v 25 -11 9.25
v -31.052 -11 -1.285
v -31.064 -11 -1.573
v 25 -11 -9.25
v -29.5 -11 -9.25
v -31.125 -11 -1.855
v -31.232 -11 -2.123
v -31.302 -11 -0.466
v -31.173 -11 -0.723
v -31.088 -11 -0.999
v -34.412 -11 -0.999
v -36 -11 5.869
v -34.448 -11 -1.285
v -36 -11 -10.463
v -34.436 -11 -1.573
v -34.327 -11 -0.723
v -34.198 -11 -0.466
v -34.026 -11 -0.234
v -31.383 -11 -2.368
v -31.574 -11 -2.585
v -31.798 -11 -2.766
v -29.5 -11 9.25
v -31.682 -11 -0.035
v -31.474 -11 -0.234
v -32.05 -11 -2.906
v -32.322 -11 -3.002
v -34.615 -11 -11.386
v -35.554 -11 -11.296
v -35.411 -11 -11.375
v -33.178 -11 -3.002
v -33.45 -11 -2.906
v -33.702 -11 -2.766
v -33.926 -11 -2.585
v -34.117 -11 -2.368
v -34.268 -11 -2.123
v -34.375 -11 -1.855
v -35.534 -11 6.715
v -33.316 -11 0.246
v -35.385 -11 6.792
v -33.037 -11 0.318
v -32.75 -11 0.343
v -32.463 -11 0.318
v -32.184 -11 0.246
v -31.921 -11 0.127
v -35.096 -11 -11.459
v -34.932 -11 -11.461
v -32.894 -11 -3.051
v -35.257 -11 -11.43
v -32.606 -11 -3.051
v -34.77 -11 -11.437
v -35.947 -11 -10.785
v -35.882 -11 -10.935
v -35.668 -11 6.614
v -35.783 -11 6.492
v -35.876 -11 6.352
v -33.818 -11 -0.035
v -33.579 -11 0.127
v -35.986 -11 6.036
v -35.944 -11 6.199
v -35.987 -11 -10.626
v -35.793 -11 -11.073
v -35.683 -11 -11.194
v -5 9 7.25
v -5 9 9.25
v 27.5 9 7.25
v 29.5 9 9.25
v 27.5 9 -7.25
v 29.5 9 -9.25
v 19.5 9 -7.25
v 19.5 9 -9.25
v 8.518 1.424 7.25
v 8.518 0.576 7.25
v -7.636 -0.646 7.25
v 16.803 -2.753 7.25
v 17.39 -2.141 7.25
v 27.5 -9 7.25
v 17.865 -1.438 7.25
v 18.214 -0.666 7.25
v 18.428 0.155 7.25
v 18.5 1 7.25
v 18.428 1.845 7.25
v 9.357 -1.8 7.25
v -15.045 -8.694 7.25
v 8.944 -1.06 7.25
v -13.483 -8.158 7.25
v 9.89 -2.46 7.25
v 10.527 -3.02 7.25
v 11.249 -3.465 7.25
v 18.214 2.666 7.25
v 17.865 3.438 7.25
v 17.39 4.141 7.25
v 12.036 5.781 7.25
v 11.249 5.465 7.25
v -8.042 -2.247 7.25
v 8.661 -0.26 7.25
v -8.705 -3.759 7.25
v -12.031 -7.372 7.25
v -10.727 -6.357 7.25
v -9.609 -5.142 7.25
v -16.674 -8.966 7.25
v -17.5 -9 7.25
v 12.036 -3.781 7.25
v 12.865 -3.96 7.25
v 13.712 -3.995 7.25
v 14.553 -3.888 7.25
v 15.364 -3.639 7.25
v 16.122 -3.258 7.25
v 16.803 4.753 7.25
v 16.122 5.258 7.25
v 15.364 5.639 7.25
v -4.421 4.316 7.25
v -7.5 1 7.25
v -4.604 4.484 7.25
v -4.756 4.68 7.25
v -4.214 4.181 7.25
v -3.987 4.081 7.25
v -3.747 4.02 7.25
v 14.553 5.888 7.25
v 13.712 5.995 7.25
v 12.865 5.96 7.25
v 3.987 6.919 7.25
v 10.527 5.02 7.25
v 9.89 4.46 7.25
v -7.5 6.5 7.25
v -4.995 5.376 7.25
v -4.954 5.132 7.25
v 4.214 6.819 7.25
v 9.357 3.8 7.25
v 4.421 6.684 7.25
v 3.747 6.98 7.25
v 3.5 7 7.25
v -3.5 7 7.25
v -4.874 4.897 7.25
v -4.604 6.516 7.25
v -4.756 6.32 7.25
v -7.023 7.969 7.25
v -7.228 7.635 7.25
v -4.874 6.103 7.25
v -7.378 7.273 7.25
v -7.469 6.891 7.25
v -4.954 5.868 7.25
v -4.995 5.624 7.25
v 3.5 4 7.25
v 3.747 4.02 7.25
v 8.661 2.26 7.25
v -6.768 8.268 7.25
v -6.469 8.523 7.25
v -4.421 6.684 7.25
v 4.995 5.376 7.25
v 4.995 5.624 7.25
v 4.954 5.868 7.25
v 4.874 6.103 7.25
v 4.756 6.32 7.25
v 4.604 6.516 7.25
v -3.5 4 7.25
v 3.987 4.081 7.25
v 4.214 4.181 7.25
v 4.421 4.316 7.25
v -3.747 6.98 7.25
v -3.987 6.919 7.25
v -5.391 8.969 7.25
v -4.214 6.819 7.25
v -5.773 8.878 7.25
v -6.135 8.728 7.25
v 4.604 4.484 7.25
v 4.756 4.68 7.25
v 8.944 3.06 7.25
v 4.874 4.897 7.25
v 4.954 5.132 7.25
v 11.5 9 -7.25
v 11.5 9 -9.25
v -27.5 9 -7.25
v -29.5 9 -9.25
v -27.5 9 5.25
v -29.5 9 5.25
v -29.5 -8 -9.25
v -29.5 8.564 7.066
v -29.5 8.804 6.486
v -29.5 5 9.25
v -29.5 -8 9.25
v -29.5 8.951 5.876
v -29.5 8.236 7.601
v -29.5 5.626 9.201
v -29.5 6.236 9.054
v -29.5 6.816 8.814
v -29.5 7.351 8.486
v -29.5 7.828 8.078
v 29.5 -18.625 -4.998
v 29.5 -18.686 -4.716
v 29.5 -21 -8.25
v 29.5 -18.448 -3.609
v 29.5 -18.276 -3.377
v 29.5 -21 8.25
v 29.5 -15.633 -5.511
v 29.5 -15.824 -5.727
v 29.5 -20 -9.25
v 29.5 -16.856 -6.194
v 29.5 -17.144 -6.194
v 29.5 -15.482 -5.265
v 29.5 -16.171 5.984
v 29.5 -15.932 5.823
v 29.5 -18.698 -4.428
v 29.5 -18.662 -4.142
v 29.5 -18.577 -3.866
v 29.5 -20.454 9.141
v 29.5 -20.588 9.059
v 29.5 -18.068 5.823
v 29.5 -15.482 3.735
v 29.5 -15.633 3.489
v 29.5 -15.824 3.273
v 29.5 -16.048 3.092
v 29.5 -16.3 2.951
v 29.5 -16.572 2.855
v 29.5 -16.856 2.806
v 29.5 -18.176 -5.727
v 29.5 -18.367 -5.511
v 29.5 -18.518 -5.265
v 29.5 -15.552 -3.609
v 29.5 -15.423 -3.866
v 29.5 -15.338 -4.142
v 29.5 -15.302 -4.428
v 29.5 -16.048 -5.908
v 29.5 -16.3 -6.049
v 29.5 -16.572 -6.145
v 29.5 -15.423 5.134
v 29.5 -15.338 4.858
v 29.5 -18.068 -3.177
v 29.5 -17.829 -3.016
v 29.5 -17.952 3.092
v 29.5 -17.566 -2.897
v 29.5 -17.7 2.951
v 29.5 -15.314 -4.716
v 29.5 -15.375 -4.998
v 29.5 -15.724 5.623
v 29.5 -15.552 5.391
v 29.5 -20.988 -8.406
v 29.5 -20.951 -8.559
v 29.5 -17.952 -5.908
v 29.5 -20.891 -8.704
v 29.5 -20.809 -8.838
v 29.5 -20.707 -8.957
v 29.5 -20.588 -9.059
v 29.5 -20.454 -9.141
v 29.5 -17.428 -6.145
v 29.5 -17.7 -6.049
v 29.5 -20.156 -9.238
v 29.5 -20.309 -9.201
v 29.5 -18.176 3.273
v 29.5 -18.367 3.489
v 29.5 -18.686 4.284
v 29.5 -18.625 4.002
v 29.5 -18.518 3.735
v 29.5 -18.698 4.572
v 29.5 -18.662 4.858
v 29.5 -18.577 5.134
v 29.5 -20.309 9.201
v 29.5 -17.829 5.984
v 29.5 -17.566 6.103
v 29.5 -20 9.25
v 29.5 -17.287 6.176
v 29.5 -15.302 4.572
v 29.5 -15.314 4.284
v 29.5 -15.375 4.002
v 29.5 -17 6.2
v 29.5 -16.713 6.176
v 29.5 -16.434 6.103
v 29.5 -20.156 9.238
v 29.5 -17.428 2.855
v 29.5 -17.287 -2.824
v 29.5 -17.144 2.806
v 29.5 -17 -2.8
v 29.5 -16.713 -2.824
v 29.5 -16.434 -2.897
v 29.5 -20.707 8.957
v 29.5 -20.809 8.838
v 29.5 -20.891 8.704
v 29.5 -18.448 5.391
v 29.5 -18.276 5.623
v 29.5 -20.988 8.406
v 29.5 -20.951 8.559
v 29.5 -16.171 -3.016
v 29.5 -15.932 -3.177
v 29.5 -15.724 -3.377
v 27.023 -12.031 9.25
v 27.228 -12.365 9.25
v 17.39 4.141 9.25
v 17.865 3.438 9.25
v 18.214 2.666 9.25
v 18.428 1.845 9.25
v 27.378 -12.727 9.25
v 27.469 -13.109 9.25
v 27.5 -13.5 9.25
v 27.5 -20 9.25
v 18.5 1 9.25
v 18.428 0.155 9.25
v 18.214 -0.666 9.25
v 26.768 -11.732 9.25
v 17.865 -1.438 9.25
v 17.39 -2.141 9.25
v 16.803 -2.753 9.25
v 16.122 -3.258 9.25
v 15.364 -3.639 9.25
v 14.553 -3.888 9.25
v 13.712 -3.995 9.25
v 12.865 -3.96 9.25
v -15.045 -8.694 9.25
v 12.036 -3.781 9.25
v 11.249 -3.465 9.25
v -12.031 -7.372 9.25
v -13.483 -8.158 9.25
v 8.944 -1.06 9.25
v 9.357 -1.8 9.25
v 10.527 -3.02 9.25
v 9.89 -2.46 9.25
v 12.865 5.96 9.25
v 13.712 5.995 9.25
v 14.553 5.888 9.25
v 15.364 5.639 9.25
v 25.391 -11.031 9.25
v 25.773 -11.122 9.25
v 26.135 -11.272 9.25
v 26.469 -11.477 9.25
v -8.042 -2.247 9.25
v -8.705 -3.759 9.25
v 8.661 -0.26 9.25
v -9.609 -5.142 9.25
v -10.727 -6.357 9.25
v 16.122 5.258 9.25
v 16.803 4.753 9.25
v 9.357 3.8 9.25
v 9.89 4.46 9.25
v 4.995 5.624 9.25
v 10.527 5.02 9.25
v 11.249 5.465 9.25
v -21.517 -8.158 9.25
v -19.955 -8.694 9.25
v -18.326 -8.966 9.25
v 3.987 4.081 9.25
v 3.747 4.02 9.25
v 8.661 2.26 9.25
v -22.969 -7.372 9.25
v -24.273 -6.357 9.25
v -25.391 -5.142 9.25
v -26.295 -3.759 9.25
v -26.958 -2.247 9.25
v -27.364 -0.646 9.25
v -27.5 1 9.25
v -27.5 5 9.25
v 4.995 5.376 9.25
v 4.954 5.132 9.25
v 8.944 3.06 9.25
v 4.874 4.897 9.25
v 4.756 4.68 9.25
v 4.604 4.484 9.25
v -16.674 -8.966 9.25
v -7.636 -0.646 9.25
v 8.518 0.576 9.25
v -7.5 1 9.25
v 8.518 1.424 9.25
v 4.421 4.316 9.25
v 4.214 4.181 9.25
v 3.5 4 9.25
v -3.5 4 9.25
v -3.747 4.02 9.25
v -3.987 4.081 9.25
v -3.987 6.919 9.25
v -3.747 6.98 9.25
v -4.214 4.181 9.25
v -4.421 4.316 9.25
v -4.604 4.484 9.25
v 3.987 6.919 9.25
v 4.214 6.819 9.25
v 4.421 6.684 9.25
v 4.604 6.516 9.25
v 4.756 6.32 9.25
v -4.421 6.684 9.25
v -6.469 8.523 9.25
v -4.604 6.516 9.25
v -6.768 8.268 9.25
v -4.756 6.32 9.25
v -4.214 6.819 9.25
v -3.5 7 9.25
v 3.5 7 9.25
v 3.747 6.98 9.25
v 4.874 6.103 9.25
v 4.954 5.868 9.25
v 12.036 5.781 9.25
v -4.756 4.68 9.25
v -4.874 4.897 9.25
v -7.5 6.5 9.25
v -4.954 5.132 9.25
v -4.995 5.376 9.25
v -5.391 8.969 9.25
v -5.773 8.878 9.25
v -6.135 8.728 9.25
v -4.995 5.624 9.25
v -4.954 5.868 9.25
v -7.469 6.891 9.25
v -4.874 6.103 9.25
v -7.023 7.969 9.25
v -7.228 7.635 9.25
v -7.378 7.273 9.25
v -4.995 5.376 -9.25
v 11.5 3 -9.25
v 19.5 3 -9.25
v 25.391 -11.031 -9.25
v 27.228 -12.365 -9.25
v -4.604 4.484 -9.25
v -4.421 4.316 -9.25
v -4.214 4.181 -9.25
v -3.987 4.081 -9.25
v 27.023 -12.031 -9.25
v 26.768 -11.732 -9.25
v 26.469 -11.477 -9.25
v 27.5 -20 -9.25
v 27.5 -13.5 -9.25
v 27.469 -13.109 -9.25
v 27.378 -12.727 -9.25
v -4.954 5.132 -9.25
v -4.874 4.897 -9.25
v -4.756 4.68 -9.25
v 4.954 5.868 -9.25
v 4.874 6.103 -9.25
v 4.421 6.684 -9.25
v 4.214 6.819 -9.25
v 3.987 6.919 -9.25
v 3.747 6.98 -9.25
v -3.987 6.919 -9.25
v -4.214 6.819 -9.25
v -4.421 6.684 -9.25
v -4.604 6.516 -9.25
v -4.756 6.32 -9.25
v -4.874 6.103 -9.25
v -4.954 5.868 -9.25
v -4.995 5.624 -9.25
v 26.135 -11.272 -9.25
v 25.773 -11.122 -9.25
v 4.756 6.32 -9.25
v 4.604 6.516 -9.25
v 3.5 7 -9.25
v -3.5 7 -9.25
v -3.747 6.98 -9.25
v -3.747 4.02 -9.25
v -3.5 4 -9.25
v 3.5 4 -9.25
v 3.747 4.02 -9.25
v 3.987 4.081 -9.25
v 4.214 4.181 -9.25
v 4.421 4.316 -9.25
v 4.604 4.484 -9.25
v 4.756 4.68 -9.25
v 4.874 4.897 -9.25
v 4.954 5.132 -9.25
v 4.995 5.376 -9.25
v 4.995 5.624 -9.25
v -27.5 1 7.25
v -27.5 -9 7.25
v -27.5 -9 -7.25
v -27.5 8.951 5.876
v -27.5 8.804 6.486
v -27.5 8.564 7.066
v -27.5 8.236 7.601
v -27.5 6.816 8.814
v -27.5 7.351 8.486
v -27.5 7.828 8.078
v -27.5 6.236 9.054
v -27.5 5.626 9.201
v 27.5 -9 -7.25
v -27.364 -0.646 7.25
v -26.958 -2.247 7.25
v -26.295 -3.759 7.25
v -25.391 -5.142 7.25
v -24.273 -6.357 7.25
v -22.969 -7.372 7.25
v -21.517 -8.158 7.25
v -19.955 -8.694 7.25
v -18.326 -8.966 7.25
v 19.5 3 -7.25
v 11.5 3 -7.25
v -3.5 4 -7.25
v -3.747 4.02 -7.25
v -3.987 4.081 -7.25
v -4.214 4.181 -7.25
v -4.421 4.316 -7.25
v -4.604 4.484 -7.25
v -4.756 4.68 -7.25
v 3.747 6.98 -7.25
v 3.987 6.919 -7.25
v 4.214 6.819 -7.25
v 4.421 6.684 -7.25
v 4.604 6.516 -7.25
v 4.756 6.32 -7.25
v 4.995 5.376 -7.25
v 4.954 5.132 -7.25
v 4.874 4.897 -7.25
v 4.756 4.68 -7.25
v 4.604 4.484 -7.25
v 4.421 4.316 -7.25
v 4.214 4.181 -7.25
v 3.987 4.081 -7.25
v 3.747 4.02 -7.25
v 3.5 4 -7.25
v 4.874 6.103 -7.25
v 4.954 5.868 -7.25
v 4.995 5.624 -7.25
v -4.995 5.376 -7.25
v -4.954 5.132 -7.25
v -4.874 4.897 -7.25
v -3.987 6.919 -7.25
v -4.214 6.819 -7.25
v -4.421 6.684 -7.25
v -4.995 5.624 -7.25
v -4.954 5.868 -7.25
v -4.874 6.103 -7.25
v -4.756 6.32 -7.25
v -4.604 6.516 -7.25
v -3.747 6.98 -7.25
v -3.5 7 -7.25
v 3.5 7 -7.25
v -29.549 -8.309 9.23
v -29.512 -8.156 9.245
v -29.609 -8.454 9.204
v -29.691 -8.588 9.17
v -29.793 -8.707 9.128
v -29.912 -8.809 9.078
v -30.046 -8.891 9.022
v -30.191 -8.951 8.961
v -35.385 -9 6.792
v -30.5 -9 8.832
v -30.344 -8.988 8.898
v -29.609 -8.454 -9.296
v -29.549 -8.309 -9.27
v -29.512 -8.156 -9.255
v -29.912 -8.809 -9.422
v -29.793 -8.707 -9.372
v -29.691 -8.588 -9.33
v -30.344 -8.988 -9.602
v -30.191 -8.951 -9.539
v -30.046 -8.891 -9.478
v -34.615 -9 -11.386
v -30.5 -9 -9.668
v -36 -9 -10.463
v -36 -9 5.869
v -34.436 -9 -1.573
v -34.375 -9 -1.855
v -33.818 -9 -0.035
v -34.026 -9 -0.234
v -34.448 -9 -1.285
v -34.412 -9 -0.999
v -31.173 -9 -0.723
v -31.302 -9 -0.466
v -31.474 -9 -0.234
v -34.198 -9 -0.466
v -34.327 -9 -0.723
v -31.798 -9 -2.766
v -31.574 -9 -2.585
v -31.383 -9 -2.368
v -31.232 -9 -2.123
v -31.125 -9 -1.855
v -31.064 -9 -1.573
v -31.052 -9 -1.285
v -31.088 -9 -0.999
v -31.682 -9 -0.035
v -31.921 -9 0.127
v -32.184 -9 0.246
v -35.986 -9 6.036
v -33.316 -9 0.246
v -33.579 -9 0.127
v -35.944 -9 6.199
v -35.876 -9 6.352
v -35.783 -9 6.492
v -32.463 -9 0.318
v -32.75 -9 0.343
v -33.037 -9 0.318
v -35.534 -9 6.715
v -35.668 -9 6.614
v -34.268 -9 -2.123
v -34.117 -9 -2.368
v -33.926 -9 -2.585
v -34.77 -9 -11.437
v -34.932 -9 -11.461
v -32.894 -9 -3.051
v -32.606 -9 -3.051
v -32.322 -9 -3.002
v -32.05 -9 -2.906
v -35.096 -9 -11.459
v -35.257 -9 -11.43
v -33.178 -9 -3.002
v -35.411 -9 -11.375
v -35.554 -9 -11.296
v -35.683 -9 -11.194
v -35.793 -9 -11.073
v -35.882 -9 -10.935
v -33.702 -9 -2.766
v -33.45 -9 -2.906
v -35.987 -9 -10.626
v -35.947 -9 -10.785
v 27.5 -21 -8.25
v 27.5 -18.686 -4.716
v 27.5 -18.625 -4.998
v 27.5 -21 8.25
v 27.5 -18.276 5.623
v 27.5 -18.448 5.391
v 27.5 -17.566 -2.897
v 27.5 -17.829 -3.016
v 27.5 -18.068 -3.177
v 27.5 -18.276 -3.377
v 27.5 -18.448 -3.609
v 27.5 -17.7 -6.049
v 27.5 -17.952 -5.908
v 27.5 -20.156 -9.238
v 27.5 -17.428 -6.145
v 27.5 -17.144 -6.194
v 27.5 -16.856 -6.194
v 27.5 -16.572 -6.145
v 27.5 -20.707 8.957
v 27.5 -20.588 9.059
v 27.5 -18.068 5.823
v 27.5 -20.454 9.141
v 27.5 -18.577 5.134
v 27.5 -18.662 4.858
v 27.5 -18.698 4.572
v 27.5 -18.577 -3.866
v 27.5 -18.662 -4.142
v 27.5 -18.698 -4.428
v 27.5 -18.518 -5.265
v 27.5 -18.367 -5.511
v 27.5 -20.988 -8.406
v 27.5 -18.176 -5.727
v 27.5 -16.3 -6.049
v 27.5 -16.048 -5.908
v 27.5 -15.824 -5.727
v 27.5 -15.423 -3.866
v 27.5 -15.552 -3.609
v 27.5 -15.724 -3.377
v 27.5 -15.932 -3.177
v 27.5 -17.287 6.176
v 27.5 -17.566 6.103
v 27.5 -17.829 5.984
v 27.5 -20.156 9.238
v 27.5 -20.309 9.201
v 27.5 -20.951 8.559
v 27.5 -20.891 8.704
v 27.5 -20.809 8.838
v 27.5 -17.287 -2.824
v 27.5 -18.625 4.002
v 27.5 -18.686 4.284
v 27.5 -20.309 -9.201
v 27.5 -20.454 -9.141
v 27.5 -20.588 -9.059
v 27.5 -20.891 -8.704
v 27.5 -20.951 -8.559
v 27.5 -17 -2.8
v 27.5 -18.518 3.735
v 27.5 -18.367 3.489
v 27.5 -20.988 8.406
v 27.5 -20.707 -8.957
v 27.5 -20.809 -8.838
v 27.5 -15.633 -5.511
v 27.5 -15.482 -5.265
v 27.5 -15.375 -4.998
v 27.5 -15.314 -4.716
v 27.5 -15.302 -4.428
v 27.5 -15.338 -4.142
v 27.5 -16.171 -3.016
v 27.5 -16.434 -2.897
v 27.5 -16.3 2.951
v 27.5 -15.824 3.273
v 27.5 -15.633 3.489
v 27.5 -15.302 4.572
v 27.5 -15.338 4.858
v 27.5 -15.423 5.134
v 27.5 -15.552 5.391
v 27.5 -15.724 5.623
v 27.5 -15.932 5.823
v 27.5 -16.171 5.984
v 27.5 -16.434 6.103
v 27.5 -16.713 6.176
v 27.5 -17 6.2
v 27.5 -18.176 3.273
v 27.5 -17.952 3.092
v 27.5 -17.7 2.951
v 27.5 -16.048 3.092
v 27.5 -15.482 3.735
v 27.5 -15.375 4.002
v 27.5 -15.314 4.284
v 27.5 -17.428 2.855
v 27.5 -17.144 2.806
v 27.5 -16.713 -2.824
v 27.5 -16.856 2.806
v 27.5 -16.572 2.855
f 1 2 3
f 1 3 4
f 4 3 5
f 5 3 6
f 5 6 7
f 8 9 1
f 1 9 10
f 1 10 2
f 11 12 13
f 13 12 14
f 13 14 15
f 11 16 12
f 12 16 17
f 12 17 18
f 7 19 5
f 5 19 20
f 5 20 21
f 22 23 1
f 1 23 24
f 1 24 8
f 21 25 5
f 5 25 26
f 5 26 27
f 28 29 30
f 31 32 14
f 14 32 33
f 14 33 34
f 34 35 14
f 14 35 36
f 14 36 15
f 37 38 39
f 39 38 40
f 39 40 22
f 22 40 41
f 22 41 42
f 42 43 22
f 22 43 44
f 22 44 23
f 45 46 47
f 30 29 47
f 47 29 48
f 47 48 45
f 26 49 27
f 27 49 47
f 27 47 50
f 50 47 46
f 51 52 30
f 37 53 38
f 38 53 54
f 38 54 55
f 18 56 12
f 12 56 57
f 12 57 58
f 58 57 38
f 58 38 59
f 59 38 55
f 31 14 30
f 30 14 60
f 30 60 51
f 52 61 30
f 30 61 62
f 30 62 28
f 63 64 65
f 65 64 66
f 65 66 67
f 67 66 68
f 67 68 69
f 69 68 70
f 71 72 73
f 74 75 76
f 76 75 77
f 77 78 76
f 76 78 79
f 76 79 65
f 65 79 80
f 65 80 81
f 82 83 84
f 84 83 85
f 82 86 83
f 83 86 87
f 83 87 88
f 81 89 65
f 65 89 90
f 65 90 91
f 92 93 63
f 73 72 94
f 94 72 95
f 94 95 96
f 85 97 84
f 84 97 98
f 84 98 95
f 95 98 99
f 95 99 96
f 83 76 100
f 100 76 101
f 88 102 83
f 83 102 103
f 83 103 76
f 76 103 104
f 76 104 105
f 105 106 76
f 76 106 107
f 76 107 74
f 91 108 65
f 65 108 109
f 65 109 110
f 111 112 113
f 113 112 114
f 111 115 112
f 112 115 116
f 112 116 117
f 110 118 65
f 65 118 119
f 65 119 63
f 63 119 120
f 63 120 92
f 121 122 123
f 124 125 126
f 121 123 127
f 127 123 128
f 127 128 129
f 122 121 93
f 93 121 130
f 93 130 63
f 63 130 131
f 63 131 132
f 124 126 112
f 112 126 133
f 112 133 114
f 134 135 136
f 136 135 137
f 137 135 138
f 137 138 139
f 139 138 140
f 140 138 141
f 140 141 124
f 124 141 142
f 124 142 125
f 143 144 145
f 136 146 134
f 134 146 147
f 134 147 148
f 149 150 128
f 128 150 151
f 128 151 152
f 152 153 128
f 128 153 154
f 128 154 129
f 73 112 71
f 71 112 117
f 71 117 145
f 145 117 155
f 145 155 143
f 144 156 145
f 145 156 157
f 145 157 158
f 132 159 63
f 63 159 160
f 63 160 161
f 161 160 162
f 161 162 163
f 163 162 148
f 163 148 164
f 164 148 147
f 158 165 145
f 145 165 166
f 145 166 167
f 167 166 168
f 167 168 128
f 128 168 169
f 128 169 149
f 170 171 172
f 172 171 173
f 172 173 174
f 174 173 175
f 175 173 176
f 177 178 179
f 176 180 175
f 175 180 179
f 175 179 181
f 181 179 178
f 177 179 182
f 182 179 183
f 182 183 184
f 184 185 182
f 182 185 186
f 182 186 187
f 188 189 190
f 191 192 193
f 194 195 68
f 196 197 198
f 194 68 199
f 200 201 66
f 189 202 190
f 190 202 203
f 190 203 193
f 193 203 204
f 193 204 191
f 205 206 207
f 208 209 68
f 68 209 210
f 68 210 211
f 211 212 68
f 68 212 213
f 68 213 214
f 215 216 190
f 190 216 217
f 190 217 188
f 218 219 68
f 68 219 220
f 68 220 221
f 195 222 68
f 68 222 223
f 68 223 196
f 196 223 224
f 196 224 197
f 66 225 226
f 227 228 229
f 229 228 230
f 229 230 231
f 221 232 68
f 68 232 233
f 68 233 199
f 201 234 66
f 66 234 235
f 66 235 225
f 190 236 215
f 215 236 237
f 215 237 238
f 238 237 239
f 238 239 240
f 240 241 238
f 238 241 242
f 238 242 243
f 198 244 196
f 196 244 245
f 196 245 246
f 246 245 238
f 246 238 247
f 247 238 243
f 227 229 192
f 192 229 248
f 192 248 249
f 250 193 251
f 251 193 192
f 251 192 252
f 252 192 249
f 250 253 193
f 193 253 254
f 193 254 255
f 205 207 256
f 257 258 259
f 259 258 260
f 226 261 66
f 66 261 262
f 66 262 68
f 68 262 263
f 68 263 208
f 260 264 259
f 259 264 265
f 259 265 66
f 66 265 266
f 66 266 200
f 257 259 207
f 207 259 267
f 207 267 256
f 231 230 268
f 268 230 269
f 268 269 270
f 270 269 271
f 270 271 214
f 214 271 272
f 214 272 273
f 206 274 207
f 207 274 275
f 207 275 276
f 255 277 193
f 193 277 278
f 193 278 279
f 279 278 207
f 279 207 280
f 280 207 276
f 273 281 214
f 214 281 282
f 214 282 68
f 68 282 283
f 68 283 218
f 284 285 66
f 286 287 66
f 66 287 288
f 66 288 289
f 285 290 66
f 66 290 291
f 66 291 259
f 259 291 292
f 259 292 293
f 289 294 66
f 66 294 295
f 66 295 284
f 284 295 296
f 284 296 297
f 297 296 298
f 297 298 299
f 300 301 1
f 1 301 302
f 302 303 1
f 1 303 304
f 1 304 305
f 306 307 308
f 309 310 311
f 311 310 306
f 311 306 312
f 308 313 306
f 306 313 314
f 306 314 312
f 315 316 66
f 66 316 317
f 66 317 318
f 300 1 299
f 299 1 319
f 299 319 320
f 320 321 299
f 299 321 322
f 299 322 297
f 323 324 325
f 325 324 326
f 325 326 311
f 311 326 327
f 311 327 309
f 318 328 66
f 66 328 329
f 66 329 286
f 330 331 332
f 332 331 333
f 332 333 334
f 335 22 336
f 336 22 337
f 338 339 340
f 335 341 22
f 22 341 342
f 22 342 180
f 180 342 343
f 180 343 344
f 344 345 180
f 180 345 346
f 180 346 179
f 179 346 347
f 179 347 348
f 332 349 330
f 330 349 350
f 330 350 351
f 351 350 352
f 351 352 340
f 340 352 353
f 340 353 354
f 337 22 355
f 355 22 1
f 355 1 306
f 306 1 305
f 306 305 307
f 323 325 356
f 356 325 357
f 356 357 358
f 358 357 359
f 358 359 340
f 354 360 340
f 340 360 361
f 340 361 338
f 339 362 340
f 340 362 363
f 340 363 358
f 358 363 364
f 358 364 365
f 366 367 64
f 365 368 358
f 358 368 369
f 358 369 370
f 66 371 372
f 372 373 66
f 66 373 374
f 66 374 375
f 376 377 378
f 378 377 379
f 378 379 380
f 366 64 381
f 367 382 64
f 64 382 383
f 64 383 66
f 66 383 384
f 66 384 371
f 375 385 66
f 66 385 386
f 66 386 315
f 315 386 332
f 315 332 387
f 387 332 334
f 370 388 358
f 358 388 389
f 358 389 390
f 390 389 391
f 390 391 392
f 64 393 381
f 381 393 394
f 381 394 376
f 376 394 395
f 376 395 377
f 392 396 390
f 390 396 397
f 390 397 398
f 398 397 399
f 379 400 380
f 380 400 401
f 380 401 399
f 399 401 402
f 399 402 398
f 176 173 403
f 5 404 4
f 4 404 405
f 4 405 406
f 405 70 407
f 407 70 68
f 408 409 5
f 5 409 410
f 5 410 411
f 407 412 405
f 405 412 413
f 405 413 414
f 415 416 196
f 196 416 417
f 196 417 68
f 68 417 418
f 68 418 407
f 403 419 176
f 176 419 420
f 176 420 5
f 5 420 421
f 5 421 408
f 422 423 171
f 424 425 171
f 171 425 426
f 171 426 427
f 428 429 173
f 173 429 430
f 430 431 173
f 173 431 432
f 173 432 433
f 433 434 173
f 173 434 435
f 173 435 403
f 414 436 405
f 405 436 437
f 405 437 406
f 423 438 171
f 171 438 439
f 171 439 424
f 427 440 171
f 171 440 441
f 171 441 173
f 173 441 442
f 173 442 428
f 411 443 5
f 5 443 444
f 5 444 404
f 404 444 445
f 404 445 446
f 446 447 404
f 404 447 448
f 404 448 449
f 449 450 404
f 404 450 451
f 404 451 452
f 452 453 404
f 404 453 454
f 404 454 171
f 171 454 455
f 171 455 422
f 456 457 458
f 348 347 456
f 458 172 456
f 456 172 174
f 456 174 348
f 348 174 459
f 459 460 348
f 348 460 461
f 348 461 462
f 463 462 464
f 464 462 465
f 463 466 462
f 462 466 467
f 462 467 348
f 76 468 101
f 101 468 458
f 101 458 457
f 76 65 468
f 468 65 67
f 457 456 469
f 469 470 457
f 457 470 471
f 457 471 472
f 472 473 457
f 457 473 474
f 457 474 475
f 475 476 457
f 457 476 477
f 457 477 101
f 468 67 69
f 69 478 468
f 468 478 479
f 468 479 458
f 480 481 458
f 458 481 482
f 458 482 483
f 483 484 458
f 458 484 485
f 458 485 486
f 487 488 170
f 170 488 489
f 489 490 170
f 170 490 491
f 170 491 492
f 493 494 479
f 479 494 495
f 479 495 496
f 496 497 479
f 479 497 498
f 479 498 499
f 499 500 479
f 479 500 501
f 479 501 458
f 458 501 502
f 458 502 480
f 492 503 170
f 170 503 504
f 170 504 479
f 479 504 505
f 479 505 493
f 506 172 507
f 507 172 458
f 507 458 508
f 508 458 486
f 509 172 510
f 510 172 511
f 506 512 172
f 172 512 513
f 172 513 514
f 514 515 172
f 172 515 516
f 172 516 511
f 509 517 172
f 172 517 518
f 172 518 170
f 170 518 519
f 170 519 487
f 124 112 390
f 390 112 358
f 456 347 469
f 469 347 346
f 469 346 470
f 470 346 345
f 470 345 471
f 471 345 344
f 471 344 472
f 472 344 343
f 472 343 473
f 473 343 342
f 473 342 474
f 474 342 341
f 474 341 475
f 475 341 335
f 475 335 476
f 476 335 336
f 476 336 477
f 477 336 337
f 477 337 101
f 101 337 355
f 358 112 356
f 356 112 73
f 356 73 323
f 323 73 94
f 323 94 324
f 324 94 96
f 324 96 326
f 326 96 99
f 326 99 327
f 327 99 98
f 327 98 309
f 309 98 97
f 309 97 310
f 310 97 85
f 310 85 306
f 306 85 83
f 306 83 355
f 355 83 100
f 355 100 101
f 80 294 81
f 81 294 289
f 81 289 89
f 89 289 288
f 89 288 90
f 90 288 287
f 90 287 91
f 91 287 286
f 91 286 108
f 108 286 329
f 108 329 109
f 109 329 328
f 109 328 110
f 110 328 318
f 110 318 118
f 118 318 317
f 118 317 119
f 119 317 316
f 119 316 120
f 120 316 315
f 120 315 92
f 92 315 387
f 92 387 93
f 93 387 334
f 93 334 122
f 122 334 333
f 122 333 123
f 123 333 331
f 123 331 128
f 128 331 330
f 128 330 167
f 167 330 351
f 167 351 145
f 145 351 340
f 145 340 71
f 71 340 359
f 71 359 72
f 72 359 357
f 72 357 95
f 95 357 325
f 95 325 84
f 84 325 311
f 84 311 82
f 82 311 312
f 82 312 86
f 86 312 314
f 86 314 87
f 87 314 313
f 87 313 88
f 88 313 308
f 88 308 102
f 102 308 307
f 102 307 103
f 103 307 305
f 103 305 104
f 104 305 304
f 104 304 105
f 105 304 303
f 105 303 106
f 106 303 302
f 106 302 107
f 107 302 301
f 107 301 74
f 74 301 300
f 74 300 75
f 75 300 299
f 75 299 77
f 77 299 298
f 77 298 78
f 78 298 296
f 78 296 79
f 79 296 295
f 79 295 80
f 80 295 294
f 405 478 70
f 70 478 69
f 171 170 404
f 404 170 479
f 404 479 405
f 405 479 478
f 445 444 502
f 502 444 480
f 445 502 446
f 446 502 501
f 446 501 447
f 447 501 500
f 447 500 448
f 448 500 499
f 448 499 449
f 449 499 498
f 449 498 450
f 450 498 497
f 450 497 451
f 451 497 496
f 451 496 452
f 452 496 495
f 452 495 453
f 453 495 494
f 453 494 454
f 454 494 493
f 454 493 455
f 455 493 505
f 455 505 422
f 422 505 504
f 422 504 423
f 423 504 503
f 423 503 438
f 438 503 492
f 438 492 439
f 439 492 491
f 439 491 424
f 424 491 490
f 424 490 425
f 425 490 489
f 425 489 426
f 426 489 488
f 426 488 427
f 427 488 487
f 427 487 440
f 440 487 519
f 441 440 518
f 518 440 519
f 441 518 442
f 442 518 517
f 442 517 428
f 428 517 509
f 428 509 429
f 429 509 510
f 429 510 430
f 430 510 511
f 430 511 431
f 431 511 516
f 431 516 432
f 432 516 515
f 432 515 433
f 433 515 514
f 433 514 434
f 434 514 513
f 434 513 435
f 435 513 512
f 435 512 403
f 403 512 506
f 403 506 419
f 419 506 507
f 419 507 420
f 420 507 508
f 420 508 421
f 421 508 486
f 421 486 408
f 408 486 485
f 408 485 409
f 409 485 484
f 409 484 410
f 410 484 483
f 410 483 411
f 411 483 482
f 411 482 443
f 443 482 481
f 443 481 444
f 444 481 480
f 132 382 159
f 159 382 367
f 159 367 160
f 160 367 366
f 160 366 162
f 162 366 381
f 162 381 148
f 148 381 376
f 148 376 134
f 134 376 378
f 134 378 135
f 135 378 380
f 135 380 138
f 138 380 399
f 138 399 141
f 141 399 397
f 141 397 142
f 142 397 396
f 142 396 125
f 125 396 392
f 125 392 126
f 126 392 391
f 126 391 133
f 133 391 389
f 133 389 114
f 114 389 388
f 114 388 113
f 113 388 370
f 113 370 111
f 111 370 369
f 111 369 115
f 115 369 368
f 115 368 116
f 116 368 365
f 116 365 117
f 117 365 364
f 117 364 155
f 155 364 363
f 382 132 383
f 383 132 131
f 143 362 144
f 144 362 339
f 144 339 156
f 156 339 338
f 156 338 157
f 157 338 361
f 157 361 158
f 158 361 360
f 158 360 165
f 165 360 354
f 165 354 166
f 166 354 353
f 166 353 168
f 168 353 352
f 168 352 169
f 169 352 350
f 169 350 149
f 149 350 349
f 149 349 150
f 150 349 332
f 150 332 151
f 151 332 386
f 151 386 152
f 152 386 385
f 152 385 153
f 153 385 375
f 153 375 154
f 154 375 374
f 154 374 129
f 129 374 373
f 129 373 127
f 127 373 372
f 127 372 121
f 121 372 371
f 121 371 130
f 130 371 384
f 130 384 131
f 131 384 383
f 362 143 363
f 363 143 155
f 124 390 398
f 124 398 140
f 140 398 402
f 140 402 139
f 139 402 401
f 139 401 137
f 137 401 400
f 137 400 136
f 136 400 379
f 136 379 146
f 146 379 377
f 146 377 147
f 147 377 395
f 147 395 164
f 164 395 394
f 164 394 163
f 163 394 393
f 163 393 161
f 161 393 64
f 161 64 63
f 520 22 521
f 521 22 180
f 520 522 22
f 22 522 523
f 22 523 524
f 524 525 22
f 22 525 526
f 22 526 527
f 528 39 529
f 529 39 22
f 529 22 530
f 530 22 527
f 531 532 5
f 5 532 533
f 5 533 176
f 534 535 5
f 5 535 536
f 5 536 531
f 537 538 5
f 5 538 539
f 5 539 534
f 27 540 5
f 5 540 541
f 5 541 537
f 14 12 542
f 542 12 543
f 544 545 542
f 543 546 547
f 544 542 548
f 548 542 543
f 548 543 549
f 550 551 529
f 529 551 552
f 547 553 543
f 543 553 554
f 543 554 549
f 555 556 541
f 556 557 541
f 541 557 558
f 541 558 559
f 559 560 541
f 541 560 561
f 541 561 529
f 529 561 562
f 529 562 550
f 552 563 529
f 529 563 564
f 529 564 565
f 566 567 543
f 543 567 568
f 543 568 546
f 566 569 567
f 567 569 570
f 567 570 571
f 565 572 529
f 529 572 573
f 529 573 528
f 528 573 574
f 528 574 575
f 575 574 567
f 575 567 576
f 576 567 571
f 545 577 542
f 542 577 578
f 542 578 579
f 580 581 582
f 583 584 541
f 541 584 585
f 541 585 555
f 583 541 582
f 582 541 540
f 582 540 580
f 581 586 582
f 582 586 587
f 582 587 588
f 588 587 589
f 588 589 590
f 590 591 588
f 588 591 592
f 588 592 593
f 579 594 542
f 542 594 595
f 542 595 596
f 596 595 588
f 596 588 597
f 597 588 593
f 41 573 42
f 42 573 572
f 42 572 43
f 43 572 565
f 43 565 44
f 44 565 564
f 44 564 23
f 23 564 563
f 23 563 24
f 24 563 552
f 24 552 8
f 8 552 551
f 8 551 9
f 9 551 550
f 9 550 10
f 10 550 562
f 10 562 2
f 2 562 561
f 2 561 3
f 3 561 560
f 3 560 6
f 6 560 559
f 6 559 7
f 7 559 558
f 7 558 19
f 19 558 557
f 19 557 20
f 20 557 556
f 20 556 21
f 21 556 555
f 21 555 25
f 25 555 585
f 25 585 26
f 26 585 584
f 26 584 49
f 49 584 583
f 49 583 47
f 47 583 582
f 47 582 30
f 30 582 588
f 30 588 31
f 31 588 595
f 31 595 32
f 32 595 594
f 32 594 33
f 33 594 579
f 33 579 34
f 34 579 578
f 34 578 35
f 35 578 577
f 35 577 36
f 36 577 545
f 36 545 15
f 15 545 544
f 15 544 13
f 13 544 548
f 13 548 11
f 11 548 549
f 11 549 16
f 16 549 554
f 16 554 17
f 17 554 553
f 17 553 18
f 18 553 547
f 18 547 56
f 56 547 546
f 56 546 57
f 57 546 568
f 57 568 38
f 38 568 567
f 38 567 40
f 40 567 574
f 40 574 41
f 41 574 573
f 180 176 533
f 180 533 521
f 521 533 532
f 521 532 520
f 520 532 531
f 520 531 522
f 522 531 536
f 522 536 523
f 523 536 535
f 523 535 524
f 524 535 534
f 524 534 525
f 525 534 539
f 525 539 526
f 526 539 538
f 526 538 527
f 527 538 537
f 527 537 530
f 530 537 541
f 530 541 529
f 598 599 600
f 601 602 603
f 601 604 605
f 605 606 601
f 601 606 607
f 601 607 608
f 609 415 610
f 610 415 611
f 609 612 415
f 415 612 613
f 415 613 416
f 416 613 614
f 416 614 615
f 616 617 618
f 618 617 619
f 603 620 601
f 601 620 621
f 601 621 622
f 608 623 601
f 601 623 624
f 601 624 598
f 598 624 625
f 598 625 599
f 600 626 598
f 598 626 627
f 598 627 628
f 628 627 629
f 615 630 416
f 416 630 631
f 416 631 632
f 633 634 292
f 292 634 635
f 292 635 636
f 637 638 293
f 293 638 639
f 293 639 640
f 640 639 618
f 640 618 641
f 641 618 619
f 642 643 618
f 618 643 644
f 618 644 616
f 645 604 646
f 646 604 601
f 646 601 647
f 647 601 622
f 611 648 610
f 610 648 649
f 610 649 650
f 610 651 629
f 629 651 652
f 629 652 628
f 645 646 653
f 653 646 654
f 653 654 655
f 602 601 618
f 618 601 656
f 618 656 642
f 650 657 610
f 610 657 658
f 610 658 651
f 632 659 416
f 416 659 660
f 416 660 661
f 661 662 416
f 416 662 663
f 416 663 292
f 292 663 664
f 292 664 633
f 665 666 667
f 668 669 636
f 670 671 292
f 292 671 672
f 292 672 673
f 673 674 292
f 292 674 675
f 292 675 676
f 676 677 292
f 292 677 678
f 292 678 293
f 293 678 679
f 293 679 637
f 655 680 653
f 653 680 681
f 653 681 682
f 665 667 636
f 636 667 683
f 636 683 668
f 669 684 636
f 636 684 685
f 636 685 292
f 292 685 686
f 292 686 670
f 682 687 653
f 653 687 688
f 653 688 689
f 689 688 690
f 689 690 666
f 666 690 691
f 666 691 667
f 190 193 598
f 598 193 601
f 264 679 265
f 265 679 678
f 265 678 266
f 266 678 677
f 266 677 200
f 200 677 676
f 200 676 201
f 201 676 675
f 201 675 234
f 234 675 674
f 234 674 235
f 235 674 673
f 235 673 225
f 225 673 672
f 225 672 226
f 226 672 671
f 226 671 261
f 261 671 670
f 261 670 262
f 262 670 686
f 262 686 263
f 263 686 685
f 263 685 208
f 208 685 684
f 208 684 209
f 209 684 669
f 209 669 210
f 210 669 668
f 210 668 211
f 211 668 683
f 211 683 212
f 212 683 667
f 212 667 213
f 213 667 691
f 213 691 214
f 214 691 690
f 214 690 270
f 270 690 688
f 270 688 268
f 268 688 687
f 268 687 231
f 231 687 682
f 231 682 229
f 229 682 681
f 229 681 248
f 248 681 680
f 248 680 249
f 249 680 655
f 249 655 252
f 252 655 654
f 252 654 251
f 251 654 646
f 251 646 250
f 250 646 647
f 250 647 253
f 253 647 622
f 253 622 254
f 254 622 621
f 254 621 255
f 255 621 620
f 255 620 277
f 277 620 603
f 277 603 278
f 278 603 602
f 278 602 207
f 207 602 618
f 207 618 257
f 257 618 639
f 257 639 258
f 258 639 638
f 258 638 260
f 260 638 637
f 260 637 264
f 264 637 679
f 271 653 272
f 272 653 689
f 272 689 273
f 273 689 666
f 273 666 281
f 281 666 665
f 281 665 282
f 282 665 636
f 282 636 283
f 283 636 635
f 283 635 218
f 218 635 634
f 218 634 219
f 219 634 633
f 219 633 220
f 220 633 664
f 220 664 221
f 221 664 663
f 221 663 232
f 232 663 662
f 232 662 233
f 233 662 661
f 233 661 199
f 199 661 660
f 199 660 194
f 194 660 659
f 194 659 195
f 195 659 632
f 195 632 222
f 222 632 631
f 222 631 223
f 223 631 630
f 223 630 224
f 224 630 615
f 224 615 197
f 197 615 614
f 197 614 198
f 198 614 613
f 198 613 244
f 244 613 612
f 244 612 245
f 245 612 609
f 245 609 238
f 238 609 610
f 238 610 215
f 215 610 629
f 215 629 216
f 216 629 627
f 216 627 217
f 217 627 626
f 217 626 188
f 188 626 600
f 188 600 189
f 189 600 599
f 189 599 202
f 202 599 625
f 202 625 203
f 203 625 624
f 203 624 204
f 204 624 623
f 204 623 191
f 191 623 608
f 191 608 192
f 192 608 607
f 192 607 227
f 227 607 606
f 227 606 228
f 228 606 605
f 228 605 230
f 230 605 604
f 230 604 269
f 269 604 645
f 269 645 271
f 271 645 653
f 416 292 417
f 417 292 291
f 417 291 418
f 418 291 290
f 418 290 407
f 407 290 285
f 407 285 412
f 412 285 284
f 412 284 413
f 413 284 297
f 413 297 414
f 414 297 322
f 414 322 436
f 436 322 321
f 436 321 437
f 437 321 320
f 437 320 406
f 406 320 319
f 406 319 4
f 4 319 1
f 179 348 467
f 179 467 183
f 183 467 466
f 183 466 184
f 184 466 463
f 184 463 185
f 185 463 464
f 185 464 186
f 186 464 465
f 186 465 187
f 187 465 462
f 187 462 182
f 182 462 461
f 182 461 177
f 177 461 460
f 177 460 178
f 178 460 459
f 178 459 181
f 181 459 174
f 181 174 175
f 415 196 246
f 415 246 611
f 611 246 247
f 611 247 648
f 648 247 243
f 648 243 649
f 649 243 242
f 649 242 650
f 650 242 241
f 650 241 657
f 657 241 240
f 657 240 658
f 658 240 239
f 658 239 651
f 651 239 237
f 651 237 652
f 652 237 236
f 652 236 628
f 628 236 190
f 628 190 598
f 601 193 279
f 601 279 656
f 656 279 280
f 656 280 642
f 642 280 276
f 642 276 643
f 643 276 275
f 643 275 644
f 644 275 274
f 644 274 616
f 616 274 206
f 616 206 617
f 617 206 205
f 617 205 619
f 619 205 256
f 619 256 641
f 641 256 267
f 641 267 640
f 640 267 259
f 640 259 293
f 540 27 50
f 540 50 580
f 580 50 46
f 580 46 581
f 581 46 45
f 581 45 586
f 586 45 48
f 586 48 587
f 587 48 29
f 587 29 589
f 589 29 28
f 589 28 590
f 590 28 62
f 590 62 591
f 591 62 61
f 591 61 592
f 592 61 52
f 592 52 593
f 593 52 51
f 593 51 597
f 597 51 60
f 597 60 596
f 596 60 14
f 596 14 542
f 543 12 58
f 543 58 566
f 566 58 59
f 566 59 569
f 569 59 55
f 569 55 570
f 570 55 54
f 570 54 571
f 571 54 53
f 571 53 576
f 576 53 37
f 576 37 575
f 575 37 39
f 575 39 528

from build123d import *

# Parameters (mm, degrees)
SKETCH1_W               = 55
SKETCH1_H               = 18
BOSS_EXTRUDE1_DEPTH     = 7.25
SHELL2_T                = 2
LENS_CUTOUT_REACH       = 38.517
POWER_BUTTON_HOLE_REACH = 38.517
SKETCH12_R              = 5
POWER_CORD_CUTOUT_REACH = 38.517
SKETCH13_W              = 8
SKETCH13_H              = 6
CUT_EXTRUDE4_DEPTH      = 37.517119273
FILLET4_R               = 2.5
BOSS_EXTRUDE3_DEPTH     = 2
M3_CLEARANCE_HOLE1_D    = 3.4
FILLET2_R               = 1
SKETCH18_W              = 2
SKETCH18_H              = 18.5
BOSS_EXTRUDE4_DEPTH     = 10
M3_CLEARANCE_HOLE2_D    = 3.4
FILLET3_R               = 2.5
FILLET5_R               = 4
FILLET6_R               = 1


with BuildPart() as part:
    # Sketch1 → Boss-Extrude1 (new, symmetric)
    with BuildSketch(Plane.XY):
        Rectangle(SKETCH1_W, SKETCH1_H)
    extrude(amount=BOSS_EXTRUDE1_DEPTH, both=True)

    # Shell2
    shell2_openings = [part.faces().sort_by_distance(p)[0] for p in [
        (0, 9, 0),
    ]]
    offset(amount=SHELL2_T, openings=shell2_openings, kind=Kind.INTERSECTION)

    # Sketch11 → lens cutout (cut, up to next)
    with BuildSketch(Plane.XY.offset(9.25), mode=Mode.PRIVATE) as lens_cutout_sk1:
        with BuildLine():
            Line((-27.5, 9), (-27.5, 1))
            ThreePointArc((-27.5, 1), (-17.5, -9), (-7.5, 1))
            Line((-7.5, 1), (-7.5, 9))
            Line((-7.5, 9), (-27.5, 9))
        make_face()
    lens_cutout_tool1 = extrude(lens_cutout_sk1.sketch, amount=-LENS_CUTOUT_REACH, mode=Mode.PRIVATE) & part.part
    add(lens_cutout_tool1.solids().sort_by_distance((-17.5, 0.915899, 9.25))[0], mode=Mode.SUBTRACT)

    # Sketch12 → power button hole (cut, up to next)
    with BuildSketch(Plane.XY.offset(9.25), mode=Mode.PRIVATE) as power_button_hole_sk1:
        with Locations((13.5, 1)):
            Circle(SKETCH12_R)
    power_button_hole_tool1 = extrude(power_button_hole_sk1.sketch, amount=-POWER_BUTTON_HOLE_REACH, mode=Mode.PRIVATE) & part.part
    add(power_button_hole_tool1.solids().sort_by_distance((13.5, 1, 9.25))[0], mode=Mode.SUBTRACT)

    # Sketch13 → power cord cutout (cut, up to next)
    with BuildSketch(Plane(origin=(0, 0, -9.25), x_dir=(-1, 0, 0), z_dir=(0, 0, -1)), mode=Mode.PRIVATE) as power_cord_cutout_sk1:
        with Locations((-15.5, 6)):
            Rectangle(SKETCH13_W, SKETCH13_H)
    power_cord_cutout_tool1 = extrude(power_cord_cutout_sk1.sketch, amount=-POWER_CORD_CUTOUT_REACH, mode=Mode.PRIVATE) & part.part
    add(power_cord_cutout_tool1.solids().sort_by_distance((15.5, 6, -9.25))[0], mode=Mode.SUBTRACT)

    # Sketch21 → Cut-Extrude4 (cut, through all)
    with BuildSketch(Plane.XY.offset(9.25)):
        with BuildLine():
            Line((-3.5, 7), (3.5, 7))
            ThreePointArc((3.5, 7), (5, 5.5), (3.5, 4))
            Line((3.5, 4), (-3.5, 4))
            ThreePointArc((-3.5, 4), (-5, 5.5), (-3.5, 7))
        make_face()
    extrude(amount=-CUT_EXTRUDE4_DEPTH, mode=Mode.SUBTRACT)

    # Fillet4
    fillet4_edges = [part.edges().sort_by_distance(p)[0] for p in [
        (-7.5, 9, 8.25),
    ]]
    fillet(fillet4_edges, radius=FILLET4_R)

    # Sketch15 → Boss-Extrude3 (add)
    with BuildSketch(Plane.XZ.offset(11)):
        Polygon((-29.5, 9.25), (-29.5, -9.25), (-36, -11.96461114), (-36, 6.53538886), align=None)
    extrude(amount=-BOSS_EXTRUDE3_DEPTH)

    # M3 Clearance Hole1 (through all)
    with Locations(Plane(origin=(0, -9, 0), x_dir=(1, 0, 0), z_dir=(0, 1, 0))):
        with Locations((-32.75, 1.35730557)):
            Hole(M3_CLEARANCE_HOLE1_D / 2)

    # Fillet2
    fillet2_edges = [part.edges().sort_by_distance(p)[0] for p in [
        (-29.5, -9, 0),
    ]]
    fillet(fillet2_edges, radius=FILLET2_R)

    # Sketch18 → Boss-Extrude4 (add)
    with BuildSketch(Plane.XZ.offset(11)):
        with Locations((28.5, 0)):
            Rectangle(SKETCH18_W, SKETCH18_H)
    extrude(amount=BOSS_EXTRUDE4_DEPTH)

    # M3 Clearance Hole2 (through all)
    with Locations(Plane.ZY.offset(-27.5)):
        with Locations((-4.5, -17), (4.5, -17)):
            Hole(M3_CLEARANCE_HOLE2_D / 2)

    # Fillet3
    fillet3_edges = [part.edges().sort_by_distance(p)[0] for p in [
        (27.5, -11, 0),
    ]]
    fillet(fillet3_edges, radius=FILLET3_R)

    # Fillet5
    fillet5_edges = [part.edges().sort_by_distance(p)[0] for p in [
        (-28.5, 9, 9.25),
    ]]
    fillet(fillet5_edges, radius=FILLET5_R)

    # Fillet6
    fillet6_edges = [part.edges().sort_by_distance(p)[0] for p in [
        (-36, -10, 6.53538886),
        (-36, -10, -11.96461114),
        (28.5, -21, 9.25),
        (28.5, -21, -9.25),
    ]]
    fillet(fillet6_edges, radius=FILLET6_R)


solid = part.part
